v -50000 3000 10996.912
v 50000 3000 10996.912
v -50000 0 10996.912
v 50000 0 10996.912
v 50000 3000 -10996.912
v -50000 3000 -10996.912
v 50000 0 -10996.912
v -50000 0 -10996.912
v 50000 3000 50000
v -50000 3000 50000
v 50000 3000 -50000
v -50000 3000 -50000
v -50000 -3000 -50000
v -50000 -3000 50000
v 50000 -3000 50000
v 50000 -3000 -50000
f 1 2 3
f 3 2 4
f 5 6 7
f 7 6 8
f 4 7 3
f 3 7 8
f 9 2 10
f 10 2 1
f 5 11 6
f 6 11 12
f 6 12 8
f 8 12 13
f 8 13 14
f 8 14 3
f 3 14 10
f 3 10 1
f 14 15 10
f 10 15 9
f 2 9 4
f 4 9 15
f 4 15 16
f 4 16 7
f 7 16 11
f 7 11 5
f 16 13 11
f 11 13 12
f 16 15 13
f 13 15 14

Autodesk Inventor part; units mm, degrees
ref_plane "YZ Plane" through (0, 0, 0) normal (1, 0, 0) x (0, 1, 0)
ref_plane "XZ Plane" through (0, 0, 0) normal (0, 1, 0) x (-1, 0, 0)
ref_plane "XY Plane" through (0, 0, 0) normal (0, 0, 1) x (1, 0, 0)
sketch "Sketch1" plane through (0, 0, 0) normal (0, 1, 0) x (-1, 0, 0)
  line L0 (-50000, 50000) -> (50000, 50000)
  line L1 (50000, 50000) -> (50000, -50000)
  line L2 (50000, -50000) -> (-50000, -50000)
  line L3 (-50000, -50000) -> (-50000, 50000)
  line L4 (-50000, 50000) -> (50000, -50000) construction
  line L5 (50000, 50000) -> (-50000, -50000) construction
  point P0 (0, 0)
  dimension "d0" = 100000
  dimension "d1" = 100000
extrude "Extrusion1" add sketch "Sketch1" against normal blind 3000
sketch "Sketch2" plane through (0, 0, 0) normal (0, 1, 0) x (1, 0, 0)
  line L0 (-50000, 50000) -> (50000, 50000) projected
  line L1 (50000, 50000) -> (50000, -50000) projected
  arc A0 (-50000, 18335.9343) -> (50000, 18335.9343) centre (0, 250000) ccw
  line L2 (50000, 50000) -> (-50000, 50000) projected
  line L3 (-50000, 50000) -> (-50000, -50000) projected
  line L4 (-50000, -50000) -> (50000, -50000) projected
  line L5 (50000, -50000) -> (50000, 50000) projected
  arc A1 (-50000, -10996.912) -> (50000, -10996.912) centre (0, 250000) ccw
  point P0 (0, 0)
  point P1 (50000, -10996.912)
  dimension "d6" = 200000
extrude "Extrusion2" add sketch "Sketch2" along normal blind 3000 contours L0 L1 A0 L3 | A1 L1 L4 L3
sketch "Sketch3" plane through (0, 0, 0) normal (0, 1, 0) x (1, 0, 0)
  arc A0 (-50000, -10996.912) -> (50000, -10996.912) centre (0, 250000) ccw projected
  line L0 (50000, -10996.912) -> (50000, 18335.9343) projected
  arc A1 (-50000, 18335.9343) -> (50000, 18335.9343) centre (0, 250000) ccw projected
  line L1 (-50000, 18335.9343) -> (-50000, -10996.912) projected
  line L2 (-50000, 10996.912) -> (50000, 10996.912)
  line L3 (50000, 10996.912) -> (50000, -10996.912)
  line L4 (50000, -10996.912) -> (-50000, -10996.912)
  line L5 (-50000, -10996.912) -> (-50000, 10996.912)
  line L6 (-50000, 10996.912) -> (50000, -10996.912) construction
  line L7 (50000, 10996.912) -> (-50000, -10996.912) construction
  point P0 (0, 0)
extrude "Extrusion3" add sketch "Sketch3" along normal up to surface (3000 mm away) contours L4 A0 | L1 A1 L0 L2
properties part number "big_curve"
